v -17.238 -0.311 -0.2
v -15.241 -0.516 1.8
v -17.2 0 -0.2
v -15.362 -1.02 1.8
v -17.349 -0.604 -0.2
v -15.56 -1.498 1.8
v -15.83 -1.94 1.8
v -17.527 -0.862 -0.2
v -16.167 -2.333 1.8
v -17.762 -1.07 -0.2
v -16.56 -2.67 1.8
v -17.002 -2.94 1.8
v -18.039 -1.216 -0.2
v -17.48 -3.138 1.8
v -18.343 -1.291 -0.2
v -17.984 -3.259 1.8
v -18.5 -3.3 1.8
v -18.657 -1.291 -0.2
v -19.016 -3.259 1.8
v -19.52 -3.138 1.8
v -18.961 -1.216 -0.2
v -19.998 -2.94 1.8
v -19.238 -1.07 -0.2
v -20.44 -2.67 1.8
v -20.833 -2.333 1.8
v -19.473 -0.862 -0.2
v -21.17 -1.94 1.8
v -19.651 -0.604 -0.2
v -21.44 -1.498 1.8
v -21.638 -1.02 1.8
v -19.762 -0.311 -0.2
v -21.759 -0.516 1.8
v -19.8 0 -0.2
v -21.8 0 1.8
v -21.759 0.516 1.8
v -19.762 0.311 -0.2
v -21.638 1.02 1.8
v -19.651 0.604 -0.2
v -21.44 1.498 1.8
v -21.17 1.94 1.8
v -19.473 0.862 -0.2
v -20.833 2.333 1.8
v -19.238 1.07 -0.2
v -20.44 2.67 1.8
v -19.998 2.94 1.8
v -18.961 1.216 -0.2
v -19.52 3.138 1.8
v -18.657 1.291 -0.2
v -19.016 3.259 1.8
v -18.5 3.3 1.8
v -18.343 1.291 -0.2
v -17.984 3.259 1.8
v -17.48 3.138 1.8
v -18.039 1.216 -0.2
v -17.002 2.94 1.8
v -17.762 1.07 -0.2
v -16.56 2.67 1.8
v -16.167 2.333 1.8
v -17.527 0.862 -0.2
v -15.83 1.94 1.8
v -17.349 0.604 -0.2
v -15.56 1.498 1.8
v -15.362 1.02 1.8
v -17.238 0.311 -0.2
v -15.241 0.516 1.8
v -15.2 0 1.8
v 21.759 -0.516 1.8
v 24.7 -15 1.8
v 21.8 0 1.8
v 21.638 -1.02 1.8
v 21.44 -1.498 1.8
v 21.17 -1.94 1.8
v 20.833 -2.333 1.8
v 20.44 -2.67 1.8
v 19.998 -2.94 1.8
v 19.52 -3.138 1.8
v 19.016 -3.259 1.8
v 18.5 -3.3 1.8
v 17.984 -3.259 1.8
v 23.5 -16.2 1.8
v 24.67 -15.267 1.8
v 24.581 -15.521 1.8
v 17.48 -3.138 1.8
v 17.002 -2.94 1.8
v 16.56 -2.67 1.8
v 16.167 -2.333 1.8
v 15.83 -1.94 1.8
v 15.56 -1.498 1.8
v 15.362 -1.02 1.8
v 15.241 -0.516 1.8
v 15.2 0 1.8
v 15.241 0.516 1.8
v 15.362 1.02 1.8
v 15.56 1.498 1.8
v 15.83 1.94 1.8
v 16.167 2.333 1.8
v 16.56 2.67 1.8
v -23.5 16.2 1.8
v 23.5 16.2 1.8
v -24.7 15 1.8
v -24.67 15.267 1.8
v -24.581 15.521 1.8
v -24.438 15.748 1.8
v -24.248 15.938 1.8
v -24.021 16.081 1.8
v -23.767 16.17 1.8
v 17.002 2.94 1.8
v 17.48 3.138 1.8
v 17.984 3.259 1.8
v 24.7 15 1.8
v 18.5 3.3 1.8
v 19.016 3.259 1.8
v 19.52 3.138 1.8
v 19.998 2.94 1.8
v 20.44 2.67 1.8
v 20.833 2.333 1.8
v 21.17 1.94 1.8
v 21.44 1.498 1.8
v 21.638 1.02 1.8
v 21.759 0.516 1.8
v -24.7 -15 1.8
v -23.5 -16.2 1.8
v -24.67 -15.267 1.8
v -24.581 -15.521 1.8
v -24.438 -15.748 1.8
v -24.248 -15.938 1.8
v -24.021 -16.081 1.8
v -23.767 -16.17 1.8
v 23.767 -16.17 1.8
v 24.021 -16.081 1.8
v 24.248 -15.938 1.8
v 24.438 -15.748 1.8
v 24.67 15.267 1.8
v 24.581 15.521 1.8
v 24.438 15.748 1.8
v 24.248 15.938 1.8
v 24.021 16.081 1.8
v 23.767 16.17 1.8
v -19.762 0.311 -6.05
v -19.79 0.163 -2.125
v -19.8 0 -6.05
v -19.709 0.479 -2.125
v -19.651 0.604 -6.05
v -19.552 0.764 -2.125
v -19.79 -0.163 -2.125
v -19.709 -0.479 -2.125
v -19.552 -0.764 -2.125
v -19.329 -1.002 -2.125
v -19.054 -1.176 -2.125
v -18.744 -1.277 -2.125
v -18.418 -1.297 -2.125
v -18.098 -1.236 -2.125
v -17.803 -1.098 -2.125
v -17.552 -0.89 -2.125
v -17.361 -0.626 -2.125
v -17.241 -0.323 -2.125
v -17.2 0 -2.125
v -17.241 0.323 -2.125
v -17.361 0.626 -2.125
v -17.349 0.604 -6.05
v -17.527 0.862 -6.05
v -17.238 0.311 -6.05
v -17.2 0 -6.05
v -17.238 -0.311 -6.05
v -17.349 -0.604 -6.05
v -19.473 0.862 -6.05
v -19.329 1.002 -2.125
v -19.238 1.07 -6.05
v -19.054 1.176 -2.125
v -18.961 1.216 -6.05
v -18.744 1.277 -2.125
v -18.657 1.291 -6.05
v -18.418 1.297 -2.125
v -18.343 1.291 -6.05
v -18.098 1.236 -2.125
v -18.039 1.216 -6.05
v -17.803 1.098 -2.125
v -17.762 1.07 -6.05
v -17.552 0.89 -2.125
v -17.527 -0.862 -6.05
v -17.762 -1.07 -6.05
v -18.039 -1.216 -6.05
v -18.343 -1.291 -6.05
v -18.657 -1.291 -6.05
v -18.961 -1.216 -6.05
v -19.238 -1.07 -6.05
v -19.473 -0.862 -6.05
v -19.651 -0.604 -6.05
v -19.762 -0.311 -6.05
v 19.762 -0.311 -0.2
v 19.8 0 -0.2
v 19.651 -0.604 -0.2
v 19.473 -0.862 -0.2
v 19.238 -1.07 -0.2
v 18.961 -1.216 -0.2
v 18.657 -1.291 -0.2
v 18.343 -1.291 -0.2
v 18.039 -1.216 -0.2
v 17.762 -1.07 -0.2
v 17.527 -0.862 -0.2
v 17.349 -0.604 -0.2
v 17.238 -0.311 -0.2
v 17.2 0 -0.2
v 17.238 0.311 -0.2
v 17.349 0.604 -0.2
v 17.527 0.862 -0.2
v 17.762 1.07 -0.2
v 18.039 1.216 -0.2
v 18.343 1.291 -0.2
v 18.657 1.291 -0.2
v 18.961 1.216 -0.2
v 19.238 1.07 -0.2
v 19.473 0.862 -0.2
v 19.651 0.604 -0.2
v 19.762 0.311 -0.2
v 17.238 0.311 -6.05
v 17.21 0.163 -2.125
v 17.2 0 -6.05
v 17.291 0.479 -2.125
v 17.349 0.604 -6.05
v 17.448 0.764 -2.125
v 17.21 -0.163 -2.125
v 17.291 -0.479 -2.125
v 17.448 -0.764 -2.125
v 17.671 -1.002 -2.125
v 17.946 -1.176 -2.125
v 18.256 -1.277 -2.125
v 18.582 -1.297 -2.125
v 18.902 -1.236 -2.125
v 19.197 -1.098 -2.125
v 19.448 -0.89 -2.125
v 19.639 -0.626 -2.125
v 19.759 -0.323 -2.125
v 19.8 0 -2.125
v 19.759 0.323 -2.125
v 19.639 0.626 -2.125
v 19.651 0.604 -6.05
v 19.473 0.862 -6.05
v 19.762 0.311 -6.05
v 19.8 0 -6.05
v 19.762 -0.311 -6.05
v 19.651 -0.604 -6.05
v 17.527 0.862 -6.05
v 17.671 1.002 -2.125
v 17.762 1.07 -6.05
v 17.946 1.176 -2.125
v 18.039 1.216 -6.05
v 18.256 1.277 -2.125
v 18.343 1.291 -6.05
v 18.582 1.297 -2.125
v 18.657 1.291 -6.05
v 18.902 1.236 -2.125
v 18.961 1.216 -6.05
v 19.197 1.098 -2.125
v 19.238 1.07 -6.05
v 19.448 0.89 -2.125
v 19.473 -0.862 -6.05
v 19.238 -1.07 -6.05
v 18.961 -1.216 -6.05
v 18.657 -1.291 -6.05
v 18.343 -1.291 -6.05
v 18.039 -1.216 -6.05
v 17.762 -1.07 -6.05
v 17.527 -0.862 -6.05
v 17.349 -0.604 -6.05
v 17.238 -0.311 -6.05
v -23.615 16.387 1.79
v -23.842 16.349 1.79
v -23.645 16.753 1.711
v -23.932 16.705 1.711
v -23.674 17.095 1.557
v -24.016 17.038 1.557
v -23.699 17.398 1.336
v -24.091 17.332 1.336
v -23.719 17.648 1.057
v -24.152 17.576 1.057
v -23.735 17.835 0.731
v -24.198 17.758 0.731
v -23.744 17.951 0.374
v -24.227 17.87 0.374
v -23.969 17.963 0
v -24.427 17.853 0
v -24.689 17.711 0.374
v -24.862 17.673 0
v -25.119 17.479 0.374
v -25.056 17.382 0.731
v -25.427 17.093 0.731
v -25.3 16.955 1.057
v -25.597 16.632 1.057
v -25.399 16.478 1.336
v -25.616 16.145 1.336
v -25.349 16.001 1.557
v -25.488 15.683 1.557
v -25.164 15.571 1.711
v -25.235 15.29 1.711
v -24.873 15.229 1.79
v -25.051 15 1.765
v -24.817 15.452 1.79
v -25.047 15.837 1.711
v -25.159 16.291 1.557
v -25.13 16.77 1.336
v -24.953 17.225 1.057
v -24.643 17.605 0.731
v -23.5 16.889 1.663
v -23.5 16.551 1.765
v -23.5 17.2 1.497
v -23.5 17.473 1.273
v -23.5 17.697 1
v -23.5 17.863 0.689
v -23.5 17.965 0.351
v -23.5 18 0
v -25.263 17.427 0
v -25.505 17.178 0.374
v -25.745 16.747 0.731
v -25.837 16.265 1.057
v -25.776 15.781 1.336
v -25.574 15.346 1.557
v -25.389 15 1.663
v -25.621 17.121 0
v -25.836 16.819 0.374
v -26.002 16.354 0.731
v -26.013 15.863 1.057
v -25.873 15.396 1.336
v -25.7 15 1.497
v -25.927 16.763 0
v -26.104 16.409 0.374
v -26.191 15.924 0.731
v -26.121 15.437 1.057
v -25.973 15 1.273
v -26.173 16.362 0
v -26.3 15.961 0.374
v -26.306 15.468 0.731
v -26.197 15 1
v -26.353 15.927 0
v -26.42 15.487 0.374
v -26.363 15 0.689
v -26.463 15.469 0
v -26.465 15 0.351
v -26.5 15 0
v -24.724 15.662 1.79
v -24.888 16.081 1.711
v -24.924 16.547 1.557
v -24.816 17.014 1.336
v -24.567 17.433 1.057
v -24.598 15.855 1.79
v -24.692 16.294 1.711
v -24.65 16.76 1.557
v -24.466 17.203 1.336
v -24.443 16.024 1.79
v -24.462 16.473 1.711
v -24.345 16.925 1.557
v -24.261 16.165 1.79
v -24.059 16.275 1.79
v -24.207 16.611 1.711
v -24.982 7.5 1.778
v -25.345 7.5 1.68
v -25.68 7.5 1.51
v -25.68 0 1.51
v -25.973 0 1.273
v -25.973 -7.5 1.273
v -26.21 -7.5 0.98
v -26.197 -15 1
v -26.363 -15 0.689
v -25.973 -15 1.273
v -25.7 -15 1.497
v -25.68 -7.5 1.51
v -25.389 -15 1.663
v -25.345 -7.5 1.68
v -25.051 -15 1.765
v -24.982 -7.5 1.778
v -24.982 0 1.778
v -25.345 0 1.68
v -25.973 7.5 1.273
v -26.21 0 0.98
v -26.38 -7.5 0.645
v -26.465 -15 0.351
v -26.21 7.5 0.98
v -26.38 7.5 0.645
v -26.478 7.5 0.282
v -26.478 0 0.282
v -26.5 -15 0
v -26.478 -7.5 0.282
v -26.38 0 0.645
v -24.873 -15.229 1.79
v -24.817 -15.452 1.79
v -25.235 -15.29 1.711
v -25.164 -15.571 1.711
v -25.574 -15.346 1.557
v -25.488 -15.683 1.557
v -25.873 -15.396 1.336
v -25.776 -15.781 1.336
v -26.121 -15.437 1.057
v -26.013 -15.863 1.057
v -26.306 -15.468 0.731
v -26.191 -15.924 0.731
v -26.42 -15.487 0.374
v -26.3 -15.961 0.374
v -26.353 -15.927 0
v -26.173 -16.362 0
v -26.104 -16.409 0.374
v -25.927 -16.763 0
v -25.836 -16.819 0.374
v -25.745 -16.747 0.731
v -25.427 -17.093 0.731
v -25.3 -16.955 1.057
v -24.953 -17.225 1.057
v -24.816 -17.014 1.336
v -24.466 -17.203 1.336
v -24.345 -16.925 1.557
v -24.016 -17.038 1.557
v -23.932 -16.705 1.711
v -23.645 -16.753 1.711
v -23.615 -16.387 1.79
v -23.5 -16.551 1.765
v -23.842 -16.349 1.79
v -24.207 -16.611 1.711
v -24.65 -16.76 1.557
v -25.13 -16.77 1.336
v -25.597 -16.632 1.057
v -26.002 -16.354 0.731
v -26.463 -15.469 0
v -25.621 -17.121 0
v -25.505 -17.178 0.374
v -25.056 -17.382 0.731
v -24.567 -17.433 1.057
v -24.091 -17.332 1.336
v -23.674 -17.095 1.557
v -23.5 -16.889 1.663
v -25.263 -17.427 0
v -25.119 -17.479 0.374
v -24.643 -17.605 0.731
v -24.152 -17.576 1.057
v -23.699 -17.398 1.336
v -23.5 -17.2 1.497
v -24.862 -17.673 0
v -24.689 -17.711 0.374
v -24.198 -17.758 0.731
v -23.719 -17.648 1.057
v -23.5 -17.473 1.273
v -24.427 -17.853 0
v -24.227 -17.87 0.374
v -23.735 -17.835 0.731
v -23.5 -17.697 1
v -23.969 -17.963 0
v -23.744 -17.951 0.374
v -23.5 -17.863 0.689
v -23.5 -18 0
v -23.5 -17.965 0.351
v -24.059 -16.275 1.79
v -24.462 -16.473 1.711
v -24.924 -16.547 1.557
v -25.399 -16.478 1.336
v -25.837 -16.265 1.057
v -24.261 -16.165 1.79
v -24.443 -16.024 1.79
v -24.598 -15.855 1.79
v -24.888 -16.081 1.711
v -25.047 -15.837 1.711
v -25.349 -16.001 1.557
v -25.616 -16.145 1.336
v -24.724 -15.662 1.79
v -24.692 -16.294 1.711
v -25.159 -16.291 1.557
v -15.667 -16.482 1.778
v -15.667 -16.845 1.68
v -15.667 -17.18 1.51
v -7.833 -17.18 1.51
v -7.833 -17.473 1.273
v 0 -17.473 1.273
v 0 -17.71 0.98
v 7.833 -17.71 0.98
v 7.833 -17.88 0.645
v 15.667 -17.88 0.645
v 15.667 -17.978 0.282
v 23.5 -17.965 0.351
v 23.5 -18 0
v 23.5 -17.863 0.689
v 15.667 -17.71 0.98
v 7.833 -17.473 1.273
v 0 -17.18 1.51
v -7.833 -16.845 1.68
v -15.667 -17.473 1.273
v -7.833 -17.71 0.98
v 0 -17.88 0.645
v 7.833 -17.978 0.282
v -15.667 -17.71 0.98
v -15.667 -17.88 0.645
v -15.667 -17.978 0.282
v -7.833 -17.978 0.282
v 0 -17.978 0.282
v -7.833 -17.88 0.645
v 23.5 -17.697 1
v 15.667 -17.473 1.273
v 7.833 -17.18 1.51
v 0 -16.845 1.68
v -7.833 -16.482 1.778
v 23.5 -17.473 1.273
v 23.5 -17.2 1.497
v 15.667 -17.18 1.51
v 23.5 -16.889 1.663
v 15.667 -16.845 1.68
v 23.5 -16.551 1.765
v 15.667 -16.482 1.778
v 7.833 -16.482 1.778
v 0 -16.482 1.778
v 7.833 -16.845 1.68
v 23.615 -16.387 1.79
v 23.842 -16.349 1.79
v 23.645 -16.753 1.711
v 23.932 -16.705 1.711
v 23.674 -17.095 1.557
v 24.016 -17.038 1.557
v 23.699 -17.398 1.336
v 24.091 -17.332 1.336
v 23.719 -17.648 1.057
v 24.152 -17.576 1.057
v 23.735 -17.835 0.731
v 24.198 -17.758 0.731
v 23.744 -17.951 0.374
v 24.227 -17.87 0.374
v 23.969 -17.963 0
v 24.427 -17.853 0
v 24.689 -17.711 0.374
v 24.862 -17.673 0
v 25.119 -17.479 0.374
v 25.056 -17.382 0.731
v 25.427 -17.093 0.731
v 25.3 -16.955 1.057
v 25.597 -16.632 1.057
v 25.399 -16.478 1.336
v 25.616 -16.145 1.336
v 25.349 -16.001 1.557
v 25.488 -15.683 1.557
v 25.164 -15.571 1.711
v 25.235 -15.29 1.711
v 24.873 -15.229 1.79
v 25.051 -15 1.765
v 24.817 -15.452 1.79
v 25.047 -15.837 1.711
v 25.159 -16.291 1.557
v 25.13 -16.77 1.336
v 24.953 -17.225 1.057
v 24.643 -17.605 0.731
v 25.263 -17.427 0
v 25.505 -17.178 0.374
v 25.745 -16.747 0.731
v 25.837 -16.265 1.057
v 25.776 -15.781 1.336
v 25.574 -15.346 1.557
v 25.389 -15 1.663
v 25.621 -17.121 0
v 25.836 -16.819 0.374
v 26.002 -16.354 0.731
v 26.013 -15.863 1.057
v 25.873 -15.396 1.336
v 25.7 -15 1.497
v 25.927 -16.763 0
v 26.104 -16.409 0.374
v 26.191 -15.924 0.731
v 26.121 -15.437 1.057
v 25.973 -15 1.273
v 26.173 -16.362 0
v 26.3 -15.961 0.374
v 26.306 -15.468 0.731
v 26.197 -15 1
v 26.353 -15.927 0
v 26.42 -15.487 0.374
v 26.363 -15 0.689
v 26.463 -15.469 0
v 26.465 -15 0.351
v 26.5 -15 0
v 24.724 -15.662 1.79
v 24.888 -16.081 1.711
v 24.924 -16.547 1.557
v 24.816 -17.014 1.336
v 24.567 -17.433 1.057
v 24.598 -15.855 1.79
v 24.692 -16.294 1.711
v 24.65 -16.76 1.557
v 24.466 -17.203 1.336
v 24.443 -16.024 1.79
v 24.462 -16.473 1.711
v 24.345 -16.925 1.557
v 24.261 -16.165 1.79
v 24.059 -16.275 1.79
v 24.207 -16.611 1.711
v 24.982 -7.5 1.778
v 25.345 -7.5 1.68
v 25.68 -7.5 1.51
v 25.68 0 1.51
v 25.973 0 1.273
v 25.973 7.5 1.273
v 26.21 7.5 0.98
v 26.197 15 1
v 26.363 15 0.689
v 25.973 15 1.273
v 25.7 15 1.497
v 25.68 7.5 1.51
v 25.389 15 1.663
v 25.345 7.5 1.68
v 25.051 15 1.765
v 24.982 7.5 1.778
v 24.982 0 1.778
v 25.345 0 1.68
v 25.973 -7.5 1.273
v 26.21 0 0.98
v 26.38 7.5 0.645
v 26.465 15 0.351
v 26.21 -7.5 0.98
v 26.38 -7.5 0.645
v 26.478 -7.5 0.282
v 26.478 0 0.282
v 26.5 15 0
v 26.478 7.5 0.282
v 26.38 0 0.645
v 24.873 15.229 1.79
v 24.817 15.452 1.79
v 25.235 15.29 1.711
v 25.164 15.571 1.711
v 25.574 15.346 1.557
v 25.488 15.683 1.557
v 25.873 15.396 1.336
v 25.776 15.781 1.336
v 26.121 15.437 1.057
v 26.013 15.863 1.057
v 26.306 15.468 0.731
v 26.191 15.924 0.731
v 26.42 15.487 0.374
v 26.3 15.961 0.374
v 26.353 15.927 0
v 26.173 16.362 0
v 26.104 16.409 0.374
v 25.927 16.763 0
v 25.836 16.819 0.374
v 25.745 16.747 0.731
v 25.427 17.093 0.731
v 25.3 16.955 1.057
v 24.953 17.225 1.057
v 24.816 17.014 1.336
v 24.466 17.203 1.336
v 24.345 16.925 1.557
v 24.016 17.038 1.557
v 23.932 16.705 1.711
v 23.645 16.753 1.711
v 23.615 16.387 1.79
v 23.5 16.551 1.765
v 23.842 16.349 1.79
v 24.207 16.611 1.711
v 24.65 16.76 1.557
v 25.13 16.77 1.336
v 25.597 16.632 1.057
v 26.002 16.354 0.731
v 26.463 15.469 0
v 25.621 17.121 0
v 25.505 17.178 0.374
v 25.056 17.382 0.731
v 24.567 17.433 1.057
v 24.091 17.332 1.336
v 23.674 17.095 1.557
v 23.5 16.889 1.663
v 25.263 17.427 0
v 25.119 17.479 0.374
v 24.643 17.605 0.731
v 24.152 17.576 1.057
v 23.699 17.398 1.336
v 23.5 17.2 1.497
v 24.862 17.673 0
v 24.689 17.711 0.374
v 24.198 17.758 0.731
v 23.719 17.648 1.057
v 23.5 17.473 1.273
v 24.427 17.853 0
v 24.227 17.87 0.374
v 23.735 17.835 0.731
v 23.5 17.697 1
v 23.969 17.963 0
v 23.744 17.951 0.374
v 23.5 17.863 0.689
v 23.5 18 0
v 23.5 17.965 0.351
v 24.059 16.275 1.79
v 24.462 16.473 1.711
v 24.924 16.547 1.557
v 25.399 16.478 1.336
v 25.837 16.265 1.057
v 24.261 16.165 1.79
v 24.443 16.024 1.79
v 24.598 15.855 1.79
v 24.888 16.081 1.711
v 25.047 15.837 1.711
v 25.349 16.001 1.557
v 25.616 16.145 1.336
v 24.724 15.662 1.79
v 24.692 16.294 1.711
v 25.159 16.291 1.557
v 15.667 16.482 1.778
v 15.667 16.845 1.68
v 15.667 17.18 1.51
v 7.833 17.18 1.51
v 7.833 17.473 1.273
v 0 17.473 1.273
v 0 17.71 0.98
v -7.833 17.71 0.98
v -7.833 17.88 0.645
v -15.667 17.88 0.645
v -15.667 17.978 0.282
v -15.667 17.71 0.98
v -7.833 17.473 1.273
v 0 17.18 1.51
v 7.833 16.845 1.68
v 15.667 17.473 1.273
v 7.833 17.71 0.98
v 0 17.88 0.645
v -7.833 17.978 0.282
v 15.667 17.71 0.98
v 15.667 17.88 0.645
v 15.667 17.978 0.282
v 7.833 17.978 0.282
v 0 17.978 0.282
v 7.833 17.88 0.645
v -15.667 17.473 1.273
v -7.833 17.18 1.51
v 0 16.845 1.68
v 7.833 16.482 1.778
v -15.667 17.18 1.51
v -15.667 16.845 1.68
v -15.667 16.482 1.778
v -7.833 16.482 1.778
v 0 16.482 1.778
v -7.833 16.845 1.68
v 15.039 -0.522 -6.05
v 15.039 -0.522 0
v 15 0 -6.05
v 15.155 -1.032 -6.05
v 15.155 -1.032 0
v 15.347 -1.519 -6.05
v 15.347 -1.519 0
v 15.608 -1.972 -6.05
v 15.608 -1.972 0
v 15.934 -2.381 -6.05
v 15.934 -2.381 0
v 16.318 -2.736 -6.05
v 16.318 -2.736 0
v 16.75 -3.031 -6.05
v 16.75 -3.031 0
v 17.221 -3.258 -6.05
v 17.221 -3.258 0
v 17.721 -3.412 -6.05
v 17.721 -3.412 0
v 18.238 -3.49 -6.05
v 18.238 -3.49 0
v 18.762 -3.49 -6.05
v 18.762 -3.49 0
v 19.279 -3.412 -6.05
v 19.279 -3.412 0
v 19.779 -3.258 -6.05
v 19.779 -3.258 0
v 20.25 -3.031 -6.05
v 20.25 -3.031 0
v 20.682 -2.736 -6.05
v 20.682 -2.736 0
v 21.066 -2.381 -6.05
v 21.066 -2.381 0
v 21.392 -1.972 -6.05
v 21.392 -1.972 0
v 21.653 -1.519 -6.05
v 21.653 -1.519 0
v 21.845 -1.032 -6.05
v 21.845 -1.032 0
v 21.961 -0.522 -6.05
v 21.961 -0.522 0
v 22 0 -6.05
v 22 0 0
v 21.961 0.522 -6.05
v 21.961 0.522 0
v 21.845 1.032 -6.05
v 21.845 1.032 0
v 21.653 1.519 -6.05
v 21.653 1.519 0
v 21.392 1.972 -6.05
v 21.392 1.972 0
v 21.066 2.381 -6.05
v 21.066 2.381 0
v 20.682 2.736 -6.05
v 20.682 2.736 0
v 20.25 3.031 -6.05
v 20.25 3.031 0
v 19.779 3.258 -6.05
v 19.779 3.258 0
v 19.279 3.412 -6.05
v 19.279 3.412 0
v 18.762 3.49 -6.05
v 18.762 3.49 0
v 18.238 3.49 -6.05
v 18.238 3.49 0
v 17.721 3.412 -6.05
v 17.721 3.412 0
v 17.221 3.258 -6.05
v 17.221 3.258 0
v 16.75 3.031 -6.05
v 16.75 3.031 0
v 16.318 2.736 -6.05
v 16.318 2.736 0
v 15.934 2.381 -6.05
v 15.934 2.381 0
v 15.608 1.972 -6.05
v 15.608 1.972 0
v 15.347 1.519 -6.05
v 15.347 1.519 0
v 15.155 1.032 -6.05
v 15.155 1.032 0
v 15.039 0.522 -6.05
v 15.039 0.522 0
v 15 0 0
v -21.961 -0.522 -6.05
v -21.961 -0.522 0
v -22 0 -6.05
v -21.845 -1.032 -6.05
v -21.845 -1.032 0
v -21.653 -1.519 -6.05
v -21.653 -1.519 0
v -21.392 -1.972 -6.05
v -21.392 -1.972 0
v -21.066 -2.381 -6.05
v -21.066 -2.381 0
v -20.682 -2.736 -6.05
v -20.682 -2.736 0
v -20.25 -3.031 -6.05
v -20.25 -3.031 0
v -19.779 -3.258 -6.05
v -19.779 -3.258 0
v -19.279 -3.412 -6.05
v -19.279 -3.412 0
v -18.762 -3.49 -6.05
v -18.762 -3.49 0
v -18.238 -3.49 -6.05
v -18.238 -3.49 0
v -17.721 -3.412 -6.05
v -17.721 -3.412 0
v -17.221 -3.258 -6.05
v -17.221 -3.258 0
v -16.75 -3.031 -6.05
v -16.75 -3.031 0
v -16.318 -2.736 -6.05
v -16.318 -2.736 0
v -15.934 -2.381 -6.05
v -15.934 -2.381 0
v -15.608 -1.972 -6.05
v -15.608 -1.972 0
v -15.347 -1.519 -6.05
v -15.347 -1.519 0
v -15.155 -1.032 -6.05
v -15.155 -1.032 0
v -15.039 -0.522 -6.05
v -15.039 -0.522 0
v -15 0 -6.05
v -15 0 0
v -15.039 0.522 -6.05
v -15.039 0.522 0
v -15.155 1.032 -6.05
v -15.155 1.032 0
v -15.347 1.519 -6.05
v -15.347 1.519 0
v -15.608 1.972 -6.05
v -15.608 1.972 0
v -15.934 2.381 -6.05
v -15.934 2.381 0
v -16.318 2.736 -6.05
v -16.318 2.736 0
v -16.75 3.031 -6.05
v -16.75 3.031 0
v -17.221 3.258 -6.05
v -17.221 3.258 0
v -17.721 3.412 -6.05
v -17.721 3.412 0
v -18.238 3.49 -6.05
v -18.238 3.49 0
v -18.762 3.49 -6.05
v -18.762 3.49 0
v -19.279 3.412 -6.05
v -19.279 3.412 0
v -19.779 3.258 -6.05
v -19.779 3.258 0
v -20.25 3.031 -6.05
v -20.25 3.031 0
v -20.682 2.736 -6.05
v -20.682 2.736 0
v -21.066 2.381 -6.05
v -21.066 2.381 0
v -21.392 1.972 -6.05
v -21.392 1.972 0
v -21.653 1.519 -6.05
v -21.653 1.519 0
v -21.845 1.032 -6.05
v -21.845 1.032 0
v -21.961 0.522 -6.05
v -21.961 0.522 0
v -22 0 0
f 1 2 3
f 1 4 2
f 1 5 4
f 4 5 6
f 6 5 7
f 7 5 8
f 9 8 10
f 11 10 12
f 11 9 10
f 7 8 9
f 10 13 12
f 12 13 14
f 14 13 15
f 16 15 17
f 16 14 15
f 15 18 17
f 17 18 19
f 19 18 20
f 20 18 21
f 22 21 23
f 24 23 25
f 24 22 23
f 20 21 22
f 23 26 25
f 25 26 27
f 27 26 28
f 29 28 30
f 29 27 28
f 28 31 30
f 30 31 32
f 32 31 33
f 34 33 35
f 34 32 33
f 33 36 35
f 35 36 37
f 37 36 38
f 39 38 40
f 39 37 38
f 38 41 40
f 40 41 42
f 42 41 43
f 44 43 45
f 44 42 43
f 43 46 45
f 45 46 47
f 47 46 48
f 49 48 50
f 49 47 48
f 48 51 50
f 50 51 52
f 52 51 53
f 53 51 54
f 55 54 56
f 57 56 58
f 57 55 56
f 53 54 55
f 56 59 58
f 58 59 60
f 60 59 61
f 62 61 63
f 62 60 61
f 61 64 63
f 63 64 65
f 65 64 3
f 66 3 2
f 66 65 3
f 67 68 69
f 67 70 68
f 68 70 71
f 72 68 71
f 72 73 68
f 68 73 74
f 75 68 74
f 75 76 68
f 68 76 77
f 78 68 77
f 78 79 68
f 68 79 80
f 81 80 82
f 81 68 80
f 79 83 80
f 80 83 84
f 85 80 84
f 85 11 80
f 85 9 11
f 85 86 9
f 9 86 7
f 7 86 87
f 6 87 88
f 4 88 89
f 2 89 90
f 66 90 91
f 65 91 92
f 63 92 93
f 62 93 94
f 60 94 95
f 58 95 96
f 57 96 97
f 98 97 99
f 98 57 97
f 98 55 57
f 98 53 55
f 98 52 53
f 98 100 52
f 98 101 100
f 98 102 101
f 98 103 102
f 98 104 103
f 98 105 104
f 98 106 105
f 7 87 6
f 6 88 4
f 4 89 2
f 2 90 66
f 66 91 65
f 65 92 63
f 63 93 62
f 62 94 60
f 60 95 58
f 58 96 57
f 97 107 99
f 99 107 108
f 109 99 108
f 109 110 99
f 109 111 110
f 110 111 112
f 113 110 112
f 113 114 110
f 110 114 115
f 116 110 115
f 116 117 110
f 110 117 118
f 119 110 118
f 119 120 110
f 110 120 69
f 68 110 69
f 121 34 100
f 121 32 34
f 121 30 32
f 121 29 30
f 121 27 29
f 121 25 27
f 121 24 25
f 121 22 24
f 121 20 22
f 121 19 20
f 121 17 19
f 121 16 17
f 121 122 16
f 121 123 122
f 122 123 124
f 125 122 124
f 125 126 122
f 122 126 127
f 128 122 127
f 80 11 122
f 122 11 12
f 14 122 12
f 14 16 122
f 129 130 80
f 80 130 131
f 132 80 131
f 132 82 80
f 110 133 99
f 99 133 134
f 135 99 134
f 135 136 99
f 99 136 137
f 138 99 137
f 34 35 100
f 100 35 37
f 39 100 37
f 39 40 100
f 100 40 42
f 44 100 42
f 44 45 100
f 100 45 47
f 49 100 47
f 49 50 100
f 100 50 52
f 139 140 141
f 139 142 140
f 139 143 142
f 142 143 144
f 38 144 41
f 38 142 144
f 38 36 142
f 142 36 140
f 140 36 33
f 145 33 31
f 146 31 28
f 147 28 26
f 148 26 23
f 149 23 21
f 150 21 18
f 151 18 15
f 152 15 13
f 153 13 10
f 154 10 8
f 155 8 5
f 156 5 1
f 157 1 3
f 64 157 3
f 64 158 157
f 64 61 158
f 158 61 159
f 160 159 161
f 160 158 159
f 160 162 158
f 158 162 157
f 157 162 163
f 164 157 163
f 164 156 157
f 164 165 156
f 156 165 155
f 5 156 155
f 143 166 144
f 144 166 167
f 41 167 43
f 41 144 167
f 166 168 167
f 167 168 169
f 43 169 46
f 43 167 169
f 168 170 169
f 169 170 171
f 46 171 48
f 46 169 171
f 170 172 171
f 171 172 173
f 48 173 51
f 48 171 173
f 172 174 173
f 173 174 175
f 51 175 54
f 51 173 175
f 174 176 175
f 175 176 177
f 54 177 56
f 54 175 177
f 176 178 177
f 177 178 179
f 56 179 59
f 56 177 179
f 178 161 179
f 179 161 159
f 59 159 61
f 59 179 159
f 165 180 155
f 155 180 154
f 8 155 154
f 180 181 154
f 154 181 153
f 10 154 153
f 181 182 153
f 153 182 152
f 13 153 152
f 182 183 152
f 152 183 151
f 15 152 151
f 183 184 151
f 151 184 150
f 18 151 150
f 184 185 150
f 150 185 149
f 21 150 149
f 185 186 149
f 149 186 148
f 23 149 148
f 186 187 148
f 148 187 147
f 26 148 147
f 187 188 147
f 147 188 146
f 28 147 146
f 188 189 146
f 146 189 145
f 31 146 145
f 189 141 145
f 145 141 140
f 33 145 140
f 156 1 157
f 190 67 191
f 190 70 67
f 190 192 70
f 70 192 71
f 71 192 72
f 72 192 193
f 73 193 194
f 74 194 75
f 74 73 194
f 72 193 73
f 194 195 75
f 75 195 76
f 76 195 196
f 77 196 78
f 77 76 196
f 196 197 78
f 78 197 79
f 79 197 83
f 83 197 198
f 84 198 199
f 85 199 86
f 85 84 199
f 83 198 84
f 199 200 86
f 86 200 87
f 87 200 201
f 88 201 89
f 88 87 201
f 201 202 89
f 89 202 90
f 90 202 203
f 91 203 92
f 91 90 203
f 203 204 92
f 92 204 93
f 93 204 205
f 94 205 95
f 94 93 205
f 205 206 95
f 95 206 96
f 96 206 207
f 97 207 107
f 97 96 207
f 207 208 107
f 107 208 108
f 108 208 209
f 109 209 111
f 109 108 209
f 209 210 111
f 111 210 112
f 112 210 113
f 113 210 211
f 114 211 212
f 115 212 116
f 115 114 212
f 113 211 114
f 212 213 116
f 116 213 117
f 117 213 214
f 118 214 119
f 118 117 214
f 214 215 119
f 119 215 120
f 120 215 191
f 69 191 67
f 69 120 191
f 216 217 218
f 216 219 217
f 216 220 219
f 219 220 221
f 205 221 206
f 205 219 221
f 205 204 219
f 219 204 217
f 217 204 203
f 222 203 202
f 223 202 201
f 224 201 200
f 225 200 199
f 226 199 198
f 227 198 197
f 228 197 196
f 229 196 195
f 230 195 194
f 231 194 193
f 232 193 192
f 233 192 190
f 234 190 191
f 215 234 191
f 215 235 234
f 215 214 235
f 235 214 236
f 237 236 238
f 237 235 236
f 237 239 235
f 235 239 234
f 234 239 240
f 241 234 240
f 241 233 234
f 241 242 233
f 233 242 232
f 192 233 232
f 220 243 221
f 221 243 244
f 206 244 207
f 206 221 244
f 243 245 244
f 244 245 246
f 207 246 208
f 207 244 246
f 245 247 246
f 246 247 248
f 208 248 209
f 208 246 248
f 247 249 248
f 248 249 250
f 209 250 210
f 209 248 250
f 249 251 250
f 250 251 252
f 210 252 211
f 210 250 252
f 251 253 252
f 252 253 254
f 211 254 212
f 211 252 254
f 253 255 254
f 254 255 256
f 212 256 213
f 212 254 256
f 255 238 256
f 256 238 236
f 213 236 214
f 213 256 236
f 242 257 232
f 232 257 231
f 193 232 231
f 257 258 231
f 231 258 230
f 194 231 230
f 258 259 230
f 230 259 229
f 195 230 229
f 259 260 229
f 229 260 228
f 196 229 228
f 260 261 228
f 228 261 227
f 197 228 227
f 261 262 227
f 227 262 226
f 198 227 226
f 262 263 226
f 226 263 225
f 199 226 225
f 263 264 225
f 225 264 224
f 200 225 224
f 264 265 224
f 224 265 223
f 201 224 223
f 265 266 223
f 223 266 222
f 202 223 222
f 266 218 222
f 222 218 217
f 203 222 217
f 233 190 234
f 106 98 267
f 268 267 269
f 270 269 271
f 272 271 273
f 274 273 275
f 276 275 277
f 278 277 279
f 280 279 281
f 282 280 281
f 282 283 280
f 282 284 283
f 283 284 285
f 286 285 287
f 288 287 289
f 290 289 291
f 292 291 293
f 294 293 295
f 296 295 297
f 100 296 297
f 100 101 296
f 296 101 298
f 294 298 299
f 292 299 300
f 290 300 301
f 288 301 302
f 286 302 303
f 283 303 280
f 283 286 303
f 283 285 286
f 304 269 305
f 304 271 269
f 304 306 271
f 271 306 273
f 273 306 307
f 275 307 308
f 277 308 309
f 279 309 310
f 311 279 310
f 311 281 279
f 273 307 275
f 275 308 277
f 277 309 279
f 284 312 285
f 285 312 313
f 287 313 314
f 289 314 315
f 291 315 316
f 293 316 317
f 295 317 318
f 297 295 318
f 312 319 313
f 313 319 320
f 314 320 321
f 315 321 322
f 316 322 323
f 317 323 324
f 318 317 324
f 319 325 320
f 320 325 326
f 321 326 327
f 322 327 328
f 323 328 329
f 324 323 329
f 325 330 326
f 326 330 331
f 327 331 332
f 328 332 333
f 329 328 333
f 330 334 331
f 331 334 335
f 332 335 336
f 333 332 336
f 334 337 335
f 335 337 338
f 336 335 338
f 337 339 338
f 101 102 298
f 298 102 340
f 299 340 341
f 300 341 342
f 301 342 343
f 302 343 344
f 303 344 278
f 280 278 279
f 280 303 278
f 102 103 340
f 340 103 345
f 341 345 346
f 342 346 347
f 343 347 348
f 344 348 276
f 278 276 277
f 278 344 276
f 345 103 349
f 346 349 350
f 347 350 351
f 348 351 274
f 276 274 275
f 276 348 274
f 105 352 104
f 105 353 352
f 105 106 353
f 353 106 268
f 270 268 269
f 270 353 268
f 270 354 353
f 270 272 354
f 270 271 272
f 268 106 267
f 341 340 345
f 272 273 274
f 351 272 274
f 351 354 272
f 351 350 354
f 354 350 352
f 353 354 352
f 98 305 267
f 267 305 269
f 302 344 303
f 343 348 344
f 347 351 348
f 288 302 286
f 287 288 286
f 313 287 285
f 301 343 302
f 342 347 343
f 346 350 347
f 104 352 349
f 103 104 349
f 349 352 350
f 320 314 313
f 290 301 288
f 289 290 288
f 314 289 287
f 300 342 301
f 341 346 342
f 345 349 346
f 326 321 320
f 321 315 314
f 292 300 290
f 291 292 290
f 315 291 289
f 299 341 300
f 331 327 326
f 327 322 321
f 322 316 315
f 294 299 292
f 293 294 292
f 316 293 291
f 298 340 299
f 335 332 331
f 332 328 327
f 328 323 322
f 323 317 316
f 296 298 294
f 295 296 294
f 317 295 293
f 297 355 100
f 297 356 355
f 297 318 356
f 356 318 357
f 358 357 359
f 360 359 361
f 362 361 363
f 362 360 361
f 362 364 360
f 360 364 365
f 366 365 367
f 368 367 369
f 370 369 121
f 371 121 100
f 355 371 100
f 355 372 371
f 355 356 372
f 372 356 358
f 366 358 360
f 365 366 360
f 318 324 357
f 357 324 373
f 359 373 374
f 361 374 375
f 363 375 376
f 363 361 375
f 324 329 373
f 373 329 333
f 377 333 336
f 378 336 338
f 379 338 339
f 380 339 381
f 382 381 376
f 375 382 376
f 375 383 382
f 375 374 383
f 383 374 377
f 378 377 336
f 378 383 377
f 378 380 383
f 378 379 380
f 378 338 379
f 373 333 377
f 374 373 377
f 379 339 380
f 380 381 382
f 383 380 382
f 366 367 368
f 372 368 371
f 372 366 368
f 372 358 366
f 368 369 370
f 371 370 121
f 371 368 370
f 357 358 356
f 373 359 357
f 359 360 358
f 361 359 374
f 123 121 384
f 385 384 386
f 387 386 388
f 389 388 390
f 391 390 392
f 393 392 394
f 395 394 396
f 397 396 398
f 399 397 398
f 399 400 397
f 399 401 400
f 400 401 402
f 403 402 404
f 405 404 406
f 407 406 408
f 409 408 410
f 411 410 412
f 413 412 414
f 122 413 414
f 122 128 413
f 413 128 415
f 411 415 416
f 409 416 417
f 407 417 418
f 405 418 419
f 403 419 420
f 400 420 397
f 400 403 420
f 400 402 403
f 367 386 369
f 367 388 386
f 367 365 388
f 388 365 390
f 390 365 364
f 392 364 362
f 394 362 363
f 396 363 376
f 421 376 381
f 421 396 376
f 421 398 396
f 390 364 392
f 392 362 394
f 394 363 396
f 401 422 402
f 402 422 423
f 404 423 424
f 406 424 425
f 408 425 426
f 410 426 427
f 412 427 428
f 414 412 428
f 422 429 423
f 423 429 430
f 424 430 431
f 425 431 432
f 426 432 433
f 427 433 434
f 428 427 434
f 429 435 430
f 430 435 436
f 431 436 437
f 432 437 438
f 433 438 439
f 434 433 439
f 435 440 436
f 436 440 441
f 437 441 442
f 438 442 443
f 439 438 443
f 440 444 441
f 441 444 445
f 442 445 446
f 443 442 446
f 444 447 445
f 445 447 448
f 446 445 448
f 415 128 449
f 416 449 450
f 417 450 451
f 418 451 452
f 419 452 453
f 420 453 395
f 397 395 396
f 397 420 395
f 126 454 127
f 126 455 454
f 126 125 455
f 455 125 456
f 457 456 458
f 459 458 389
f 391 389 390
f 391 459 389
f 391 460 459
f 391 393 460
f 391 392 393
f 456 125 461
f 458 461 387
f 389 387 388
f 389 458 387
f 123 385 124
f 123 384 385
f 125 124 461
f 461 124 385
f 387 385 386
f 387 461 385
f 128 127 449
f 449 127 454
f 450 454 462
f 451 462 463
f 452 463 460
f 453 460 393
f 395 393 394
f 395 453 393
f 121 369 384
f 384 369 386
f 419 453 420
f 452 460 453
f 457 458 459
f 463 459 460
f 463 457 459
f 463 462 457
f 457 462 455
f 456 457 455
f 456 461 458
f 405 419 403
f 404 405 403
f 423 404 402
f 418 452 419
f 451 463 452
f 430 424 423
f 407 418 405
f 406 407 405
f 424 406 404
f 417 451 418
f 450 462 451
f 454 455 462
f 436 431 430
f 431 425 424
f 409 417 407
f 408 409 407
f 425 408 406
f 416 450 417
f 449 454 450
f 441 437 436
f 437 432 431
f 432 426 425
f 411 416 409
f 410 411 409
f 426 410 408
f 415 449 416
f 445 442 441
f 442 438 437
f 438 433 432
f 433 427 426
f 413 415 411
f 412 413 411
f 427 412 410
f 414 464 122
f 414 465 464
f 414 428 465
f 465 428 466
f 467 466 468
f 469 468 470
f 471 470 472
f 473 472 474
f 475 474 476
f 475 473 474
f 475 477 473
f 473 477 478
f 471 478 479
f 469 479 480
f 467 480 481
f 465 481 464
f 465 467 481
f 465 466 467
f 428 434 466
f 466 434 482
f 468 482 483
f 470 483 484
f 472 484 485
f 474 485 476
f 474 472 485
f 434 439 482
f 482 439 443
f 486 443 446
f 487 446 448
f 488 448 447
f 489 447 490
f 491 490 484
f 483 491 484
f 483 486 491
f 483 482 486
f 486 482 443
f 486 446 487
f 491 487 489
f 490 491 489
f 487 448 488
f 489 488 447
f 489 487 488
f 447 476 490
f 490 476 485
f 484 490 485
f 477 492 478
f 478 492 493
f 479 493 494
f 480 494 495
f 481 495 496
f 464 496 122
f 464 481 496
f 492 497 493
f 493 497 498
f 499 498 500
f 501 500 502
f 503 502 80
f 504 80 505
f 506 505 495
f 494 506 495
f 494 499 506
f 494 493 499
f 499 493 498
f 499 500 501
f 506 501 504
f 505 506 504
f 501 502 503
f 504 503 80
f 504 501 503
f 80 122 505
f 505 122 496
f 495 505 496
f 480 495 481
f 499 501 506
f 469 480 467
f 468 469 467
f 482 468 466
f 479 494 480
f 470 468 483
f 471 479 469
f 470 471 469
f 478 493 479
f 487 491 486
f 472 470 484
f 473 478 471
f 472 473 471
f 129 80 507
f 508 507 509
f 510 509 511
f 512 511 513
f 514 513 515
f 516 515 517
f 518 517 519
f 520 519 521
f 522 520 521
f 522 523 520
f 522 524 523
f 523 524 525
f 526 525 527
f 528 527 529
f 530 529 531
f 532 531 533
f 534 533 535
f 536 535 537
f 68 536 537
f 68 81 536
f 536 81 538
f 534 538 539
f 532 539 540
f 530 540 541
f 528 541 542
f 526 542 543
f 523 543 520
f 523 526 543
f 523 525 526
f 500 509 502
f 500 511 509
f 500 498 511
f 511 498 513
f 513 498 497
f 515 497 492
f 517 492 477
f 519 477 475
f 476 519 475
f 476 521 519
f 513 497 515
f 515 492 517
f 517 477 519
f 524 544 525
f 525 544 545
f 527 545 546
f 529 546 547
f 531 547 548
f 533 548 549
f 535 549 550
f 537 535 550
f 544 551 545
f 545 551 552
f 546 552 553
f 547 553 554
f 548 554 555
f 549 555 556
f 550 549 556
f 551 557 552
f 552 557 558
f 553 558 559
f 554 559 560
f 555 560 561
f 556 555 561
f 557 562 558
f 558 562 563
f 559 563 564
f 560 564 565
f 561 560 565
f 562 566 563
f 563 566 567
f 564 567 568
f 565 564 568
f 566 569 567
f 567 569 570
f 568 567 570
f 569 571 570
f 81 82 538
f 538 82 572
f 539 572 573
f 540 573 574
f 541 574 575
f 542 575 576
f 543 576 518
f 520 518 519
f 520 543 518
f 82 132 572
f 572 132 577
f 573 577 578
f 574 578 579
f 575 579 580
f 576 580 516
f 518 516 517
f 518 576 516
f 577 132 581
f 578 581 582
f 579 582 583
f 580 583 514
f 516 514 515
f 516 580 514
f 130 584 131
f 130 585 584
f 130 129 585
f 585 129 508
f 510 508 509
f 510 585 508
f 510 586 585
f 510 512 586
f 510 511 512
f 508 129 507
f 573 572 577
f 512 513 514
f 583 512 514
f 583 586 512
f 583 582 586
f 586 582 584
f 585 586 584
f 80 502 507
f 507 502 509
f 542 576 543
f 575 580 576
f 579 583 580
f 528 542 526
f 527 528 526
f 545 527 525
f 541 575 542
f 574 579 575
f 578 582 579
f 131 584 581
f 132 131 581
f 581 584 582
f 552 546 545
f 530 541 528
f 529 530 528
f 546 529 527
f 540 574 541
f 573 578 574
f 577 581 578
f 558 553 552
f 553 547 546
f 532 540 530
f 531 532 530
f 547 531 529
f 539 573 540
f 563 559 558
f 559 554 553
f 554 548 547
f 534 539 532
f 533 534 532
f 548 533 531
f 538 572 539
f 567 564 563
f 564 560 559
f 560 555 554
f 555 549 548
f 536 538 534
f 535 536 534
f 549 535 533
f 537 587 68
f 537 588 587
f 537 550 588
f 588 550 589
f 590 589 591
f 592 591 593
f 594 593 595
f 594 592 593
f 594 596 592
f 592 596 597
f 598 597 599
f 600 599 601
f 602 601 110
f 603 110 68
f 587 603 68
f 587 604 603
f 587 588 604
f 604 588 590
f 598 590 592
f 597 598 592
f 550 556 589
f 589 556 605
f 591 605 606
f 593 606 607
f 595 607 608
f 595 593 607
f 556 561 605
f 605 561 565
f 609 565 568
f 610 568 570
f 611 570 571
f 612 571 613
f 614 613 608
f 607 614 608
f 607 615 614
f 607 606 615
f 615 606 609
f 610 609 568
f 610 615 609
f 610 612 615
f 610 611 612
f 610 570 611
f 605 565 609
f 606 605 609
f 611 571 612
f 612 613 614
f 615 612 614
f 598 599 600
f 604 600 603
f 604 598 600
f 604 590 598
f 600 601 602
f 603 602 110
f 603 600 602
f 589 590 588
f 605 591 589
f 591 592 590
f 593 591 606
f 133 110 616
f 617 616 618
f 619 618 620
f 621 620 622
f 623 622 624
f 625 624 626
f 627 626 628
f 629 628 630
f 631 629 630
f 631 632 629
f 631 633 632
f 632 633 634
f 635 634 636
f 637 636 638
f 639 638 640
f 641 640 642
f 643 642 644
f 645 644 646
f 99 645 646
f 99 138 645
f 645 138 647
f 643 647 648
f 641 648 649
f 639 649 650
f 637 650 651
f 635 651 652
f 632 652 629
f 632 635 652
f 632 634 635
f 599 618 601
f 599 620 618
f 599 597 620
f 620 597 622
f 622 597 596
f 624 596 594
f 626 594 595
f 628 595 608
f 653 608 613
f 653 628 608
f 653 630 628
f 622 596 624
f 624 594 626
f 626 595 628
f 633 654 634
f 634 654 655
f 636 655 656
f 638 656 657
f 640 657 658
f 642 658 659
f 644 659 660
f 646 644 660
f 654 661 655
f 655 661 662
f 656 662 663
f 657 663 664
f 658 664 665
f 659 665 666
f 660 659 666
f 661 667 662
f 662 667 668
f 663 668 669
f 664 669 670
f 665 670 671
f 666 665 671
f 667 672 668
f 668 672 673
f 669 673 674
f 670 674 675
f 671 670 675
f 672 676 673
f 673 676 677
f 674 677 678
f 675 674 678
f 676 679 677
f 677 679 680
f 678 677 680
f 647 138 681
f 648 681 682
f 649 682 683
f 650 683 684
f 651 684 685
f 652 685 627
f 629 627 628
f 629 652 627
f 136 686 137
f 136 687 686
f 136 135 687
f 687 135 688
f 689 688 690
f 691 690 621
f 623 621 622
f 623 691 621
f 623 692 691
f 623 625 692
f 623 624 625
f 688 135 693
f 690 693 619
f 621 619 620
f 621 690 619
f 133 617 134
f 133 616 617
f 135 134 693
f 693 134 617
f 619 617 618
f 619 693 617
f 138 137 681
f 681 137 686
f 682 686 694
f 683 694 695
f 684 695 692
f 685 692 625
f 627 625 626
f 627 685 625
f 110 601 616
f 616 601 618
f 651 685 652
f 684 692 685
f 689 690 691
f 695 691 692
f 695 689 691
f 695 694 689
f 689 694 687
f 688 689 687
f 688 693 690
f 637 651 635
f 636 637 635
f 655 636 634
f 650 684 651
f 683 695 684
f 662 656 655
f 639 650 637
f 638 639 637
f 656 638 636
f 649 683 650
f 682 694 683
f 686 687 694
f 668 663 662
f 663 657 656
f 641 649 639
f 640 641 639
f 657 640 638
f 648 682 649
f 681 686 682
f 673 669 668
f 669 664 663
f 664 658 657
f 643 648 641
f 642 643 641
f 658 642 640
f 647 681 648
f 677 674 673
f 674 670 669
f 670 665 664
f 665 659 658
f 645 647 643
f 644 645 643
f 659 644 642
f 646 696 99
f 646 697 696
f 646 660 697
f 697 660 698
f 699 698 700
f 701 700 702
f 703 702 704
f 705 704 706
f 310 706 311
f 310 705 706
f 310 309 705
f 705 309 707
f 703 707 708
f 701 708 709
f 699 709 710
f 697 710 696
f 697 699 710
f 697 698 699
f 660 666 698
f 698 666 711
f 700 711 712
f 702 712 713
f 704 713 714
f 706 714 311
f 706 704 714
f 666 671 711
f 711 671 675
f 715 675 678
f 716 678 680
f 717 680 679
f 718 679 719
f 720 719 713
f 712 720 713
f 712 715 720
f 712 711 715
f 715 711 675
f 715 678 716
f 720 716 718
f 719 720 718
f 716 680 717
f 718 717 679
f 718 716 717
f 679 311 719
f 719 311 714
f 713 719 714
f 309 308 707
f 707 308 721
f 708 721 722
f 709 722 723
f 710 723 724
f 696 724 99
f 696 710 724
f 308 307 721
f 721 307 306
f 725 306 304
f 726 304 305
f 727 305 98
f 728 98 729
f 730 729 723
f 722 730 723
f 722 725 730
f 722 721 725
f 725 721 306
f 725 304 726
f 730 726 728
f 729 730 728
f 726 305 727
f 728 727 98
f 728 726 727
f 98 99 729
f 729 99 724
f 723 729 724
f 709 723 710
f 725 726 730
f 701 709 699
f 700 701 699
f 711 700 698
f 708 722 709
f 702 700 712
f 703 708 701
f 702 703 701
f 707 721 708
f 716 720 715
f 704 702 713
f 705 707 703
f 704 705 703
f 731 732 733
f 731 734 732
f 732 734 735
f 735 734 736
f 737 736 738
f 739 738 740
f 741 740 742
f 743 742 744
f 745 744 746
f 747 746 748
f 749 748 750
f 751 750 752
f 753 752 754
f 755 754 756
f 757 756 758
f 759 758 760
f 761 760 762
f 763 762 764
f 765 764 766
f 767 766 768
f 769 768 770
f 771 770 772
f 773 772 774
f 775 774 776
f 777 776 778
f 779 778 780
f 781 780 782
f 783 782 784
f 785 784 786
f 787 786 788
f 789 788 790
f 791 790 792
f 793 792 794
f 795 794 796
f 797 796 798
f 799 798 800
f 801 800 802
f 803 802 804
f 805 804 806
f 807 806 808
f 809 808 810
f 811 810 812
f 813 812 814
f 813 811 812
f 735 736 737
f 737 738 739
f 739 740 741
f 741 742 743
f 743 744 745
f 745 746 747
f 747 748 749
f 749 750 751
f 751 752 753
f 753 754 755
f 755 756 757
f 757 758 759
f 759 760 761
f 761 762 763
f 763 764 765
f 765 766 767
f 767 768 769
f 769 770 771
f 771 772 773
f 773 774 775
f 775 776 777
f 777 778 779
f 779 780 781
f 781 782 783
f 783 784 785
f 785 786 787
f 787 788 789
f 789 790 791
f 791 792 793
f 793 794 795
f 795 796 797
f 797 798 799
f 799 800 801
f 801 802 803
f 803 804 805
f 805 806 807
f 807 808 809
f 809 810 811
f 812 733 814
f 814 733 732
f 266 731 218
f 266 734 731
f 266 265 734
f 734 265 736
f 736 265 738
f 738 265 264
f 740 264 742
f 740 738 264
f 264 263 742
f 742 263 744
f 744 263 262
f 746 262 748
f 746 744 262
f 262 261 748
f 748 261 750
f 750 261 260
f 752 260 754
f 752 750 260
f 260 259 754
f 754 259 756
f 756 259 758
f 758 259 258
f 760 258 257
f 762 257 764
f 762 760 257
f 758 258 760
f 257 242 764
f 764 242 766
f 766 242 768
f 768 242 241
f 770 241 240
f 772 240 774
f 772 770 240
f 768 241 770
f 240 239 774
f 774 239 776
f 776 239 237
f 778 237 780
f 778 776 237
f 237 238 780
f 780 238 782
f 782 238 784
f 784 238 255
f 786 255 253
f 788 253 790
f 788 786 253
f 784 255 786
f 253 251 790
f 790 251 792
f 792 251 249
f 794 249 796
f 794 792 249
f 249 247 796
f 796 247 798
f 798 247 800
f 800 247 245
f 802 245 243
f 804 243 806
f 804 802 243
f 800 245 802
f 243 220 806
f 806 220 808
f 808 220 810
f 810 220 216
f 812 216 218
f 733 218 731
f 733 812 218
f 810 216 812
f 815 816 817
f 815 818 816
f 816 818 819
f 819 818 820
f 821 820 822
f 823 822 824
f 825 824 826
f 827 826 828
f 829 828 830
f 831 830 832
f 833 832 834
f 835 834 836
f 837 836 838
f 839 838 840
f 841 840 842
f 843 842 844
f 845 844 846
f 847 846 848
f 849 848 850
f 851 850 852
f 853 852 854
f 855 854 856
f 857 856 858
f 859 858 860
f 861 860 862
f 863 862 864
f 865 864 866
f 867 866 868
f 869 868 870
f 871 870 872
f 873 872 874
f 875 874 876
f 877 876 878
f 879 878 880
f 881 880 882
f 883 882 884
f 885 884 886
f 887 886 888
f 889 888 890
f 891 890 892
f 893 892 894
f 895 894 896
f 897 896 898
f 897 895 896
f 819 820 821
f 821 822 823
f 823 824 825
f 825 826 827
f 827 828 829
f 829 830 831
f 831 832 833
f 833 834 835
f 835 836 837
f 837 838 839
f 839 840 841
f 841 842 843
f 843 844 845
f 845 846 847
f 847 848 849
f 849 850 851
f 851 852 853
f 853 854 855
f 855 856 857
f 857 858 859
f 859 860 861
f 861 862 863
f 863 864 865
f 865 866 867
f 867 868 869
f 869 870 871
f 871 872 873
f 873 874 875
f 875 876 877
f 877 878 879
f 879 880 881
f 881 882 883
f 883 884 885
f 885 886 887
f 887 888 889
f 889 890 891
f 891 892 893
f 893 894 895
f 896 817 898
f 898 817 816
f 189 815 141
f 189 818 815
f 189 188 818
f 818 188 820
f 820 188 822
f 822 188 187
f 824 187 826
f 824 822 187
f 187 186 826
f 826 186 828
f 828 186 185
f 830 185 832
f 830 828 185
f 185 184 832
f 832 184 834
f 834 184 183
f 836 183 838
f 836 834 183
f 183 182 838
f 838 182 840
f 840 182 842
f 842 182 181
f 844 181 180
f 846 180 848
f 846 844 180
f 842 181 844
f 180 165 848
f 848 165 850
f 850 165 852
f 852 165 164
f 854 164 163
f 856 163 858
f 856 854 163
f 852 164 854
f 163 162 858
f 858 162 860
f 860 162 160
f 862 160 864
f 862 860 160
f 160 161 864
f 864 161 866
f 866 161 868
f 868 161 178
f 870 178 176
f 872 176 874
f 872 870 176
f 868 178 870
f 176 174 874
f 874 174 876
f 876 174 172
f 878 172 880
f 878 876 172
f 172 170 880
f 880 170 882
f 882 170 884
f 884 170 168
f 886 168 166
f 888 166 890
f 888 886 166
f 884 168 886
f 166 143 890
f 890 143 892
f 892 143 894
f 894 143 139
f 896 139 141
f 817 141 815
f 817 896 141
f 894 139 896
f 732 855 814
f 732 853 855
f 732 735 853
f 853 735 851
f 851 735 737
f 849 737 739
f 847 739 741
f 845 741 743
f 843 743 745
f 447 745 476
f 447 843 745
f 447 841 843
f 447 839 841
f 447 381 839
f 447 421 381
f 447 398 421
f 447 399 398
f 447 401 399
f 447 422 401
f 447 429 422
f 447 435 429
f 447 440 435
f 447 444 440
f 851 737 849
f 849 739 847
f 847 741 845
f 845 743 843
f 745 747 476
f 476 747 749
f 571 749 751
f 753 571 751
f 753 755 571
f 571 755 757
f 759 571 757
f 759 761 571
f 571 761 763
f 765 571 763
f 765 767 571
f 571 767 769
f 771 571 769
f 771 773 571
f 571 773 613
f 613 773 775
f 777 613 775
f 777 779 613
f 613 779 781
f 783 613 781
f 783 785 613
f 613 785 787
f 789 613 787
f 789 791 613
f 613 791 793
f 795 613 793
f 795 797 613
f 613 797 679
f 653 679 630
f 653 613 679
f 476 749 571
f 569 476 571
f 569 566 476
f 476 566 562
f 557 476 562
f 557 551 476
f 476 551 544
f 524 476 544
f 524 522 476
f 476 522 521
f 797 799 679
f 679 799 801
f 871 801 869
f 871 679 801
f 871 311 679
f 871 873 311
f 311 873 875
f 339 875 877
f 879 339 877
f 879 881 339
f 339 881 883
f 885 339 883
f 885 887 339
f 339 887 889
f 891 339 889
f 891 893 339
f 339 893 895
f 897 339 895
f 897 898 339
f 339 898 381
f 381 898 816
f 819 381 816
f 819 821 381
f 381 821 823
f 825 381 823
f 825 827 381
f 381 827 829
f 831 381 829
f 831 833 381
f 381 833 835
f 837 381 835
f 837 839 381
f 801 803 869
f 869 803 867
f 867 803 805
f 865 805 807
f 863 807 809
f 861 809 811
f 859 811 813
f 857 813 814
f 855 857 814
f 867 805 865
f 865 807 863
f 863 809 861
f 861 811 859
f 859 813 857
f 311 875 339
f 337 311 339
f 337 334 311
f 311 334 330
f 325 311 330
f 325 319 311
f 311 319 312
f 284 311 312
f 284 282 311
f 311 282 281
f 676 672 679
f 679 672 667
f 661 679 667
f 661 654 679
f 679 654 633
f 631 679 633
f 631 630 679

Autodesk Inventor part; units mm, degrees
ref_plane "YZ Plane" through (0, 0, 0) normal (1, 0, 0) x (0, 1, 0)
ref_plane "XZ Plane" through (0, 0, 0) normal (0, 1, 0) x (-1, 0, 0)
ref_plane "XY Plane" through (0, 0, 0) normal (0, 0, 1) x (1, 0, 0)
sketch "Sketch1" plane through (0, 0, 0) normal (0, 0, 1) x (1, 0, 0)
  line L0 (24.7, 16.2) -> (24.7, -16.2) projected
  line L1 (24.7, -16.2) -> (-24.7, -16.2) projected
  line L2 (-24.7, -16.2) -> (-24.7, 16.2) projected
  line L3 (-24.7, 16.2) -> (24.7, 16.2) projected
  arc A0 (26.5, 15) -> (23.5, 18) centre (23.5, 15) ccw projected
  line L4 (23.5, 18) -> (-23.5, 18) projected
  arc A1 (-23.5, 18) -> (-26.5, 15) centre (-23.5, 15) ccw projected
  line L5 (-26.5, 15) -> (-26.5, -15) projected
  arc A2 (-26.5, -15) -> (-23.5, -18) centre (-23.5, -15) ccw projected
  line L6 (-23.5, -18) -> (23.5, -18) projected
  arc A3 (23.5, -18) -> (26.5, -15) centre (23.5, -15) ccw projected
  line L7 (26.5, -15) -> (26.5, 15) projected
  point P0 (0, 0)
extrude "Extrusion1" add sketch "Sketch1" along normal blind 1.8 contours L0 L1 L2 L3 | L7 A3 L6 A2 L5 A1 L4 A0
sketch "Sketch2" plane through (0, 0, 1.8) normal (0, 0, 1) x (1, 0, 0)
  circle A0 centre (-18.5, 0) radius 1.3 projected
  circle A1 centre (18.5, 0) radius 1.3 projected
  point P0 (0, 0)
extrude "Extrusion2" cut sketch "Sketch2" against normal blind 1.8
sketch "Sketch3" plane through (0, 0, 0) normal (0, 0, -1) x (-1, 0, 0)
  circle A0 centre (18.5, 0) radius 1.3 projected
  circle A1 centre (-18.5, 0) radius 1.3 projected
  circle A2 centre (-18.5, 0) radius 3.5
  circle A3 centre (18.5, 0) radius 3.5
  point P0 (0, 0)
  dimension "d4" = 7
  dimension "d5" = 7
extrude "Extrusion3" add sketch "Sketch3" along normal blind 6.05
fillet "Fillet1" radius 1.8 8 edges at (-25.6213, 17.1213, 1.8) (-26.5, 0, 1.8) (-25.6213, -17.1213, 1.8) (0, -18, 1.8) (25.6213, -17.1213, 1.8) (26.5, 0, 1.8) (25.6213, 17.1213, 1.8) (0, 18, 1.8)
chamfer "Chamfer1" distance 2 angle 45 2 edges at (17.2, 0, 1.8) (-19.8, 0, 1.8)
properties part number "top"
